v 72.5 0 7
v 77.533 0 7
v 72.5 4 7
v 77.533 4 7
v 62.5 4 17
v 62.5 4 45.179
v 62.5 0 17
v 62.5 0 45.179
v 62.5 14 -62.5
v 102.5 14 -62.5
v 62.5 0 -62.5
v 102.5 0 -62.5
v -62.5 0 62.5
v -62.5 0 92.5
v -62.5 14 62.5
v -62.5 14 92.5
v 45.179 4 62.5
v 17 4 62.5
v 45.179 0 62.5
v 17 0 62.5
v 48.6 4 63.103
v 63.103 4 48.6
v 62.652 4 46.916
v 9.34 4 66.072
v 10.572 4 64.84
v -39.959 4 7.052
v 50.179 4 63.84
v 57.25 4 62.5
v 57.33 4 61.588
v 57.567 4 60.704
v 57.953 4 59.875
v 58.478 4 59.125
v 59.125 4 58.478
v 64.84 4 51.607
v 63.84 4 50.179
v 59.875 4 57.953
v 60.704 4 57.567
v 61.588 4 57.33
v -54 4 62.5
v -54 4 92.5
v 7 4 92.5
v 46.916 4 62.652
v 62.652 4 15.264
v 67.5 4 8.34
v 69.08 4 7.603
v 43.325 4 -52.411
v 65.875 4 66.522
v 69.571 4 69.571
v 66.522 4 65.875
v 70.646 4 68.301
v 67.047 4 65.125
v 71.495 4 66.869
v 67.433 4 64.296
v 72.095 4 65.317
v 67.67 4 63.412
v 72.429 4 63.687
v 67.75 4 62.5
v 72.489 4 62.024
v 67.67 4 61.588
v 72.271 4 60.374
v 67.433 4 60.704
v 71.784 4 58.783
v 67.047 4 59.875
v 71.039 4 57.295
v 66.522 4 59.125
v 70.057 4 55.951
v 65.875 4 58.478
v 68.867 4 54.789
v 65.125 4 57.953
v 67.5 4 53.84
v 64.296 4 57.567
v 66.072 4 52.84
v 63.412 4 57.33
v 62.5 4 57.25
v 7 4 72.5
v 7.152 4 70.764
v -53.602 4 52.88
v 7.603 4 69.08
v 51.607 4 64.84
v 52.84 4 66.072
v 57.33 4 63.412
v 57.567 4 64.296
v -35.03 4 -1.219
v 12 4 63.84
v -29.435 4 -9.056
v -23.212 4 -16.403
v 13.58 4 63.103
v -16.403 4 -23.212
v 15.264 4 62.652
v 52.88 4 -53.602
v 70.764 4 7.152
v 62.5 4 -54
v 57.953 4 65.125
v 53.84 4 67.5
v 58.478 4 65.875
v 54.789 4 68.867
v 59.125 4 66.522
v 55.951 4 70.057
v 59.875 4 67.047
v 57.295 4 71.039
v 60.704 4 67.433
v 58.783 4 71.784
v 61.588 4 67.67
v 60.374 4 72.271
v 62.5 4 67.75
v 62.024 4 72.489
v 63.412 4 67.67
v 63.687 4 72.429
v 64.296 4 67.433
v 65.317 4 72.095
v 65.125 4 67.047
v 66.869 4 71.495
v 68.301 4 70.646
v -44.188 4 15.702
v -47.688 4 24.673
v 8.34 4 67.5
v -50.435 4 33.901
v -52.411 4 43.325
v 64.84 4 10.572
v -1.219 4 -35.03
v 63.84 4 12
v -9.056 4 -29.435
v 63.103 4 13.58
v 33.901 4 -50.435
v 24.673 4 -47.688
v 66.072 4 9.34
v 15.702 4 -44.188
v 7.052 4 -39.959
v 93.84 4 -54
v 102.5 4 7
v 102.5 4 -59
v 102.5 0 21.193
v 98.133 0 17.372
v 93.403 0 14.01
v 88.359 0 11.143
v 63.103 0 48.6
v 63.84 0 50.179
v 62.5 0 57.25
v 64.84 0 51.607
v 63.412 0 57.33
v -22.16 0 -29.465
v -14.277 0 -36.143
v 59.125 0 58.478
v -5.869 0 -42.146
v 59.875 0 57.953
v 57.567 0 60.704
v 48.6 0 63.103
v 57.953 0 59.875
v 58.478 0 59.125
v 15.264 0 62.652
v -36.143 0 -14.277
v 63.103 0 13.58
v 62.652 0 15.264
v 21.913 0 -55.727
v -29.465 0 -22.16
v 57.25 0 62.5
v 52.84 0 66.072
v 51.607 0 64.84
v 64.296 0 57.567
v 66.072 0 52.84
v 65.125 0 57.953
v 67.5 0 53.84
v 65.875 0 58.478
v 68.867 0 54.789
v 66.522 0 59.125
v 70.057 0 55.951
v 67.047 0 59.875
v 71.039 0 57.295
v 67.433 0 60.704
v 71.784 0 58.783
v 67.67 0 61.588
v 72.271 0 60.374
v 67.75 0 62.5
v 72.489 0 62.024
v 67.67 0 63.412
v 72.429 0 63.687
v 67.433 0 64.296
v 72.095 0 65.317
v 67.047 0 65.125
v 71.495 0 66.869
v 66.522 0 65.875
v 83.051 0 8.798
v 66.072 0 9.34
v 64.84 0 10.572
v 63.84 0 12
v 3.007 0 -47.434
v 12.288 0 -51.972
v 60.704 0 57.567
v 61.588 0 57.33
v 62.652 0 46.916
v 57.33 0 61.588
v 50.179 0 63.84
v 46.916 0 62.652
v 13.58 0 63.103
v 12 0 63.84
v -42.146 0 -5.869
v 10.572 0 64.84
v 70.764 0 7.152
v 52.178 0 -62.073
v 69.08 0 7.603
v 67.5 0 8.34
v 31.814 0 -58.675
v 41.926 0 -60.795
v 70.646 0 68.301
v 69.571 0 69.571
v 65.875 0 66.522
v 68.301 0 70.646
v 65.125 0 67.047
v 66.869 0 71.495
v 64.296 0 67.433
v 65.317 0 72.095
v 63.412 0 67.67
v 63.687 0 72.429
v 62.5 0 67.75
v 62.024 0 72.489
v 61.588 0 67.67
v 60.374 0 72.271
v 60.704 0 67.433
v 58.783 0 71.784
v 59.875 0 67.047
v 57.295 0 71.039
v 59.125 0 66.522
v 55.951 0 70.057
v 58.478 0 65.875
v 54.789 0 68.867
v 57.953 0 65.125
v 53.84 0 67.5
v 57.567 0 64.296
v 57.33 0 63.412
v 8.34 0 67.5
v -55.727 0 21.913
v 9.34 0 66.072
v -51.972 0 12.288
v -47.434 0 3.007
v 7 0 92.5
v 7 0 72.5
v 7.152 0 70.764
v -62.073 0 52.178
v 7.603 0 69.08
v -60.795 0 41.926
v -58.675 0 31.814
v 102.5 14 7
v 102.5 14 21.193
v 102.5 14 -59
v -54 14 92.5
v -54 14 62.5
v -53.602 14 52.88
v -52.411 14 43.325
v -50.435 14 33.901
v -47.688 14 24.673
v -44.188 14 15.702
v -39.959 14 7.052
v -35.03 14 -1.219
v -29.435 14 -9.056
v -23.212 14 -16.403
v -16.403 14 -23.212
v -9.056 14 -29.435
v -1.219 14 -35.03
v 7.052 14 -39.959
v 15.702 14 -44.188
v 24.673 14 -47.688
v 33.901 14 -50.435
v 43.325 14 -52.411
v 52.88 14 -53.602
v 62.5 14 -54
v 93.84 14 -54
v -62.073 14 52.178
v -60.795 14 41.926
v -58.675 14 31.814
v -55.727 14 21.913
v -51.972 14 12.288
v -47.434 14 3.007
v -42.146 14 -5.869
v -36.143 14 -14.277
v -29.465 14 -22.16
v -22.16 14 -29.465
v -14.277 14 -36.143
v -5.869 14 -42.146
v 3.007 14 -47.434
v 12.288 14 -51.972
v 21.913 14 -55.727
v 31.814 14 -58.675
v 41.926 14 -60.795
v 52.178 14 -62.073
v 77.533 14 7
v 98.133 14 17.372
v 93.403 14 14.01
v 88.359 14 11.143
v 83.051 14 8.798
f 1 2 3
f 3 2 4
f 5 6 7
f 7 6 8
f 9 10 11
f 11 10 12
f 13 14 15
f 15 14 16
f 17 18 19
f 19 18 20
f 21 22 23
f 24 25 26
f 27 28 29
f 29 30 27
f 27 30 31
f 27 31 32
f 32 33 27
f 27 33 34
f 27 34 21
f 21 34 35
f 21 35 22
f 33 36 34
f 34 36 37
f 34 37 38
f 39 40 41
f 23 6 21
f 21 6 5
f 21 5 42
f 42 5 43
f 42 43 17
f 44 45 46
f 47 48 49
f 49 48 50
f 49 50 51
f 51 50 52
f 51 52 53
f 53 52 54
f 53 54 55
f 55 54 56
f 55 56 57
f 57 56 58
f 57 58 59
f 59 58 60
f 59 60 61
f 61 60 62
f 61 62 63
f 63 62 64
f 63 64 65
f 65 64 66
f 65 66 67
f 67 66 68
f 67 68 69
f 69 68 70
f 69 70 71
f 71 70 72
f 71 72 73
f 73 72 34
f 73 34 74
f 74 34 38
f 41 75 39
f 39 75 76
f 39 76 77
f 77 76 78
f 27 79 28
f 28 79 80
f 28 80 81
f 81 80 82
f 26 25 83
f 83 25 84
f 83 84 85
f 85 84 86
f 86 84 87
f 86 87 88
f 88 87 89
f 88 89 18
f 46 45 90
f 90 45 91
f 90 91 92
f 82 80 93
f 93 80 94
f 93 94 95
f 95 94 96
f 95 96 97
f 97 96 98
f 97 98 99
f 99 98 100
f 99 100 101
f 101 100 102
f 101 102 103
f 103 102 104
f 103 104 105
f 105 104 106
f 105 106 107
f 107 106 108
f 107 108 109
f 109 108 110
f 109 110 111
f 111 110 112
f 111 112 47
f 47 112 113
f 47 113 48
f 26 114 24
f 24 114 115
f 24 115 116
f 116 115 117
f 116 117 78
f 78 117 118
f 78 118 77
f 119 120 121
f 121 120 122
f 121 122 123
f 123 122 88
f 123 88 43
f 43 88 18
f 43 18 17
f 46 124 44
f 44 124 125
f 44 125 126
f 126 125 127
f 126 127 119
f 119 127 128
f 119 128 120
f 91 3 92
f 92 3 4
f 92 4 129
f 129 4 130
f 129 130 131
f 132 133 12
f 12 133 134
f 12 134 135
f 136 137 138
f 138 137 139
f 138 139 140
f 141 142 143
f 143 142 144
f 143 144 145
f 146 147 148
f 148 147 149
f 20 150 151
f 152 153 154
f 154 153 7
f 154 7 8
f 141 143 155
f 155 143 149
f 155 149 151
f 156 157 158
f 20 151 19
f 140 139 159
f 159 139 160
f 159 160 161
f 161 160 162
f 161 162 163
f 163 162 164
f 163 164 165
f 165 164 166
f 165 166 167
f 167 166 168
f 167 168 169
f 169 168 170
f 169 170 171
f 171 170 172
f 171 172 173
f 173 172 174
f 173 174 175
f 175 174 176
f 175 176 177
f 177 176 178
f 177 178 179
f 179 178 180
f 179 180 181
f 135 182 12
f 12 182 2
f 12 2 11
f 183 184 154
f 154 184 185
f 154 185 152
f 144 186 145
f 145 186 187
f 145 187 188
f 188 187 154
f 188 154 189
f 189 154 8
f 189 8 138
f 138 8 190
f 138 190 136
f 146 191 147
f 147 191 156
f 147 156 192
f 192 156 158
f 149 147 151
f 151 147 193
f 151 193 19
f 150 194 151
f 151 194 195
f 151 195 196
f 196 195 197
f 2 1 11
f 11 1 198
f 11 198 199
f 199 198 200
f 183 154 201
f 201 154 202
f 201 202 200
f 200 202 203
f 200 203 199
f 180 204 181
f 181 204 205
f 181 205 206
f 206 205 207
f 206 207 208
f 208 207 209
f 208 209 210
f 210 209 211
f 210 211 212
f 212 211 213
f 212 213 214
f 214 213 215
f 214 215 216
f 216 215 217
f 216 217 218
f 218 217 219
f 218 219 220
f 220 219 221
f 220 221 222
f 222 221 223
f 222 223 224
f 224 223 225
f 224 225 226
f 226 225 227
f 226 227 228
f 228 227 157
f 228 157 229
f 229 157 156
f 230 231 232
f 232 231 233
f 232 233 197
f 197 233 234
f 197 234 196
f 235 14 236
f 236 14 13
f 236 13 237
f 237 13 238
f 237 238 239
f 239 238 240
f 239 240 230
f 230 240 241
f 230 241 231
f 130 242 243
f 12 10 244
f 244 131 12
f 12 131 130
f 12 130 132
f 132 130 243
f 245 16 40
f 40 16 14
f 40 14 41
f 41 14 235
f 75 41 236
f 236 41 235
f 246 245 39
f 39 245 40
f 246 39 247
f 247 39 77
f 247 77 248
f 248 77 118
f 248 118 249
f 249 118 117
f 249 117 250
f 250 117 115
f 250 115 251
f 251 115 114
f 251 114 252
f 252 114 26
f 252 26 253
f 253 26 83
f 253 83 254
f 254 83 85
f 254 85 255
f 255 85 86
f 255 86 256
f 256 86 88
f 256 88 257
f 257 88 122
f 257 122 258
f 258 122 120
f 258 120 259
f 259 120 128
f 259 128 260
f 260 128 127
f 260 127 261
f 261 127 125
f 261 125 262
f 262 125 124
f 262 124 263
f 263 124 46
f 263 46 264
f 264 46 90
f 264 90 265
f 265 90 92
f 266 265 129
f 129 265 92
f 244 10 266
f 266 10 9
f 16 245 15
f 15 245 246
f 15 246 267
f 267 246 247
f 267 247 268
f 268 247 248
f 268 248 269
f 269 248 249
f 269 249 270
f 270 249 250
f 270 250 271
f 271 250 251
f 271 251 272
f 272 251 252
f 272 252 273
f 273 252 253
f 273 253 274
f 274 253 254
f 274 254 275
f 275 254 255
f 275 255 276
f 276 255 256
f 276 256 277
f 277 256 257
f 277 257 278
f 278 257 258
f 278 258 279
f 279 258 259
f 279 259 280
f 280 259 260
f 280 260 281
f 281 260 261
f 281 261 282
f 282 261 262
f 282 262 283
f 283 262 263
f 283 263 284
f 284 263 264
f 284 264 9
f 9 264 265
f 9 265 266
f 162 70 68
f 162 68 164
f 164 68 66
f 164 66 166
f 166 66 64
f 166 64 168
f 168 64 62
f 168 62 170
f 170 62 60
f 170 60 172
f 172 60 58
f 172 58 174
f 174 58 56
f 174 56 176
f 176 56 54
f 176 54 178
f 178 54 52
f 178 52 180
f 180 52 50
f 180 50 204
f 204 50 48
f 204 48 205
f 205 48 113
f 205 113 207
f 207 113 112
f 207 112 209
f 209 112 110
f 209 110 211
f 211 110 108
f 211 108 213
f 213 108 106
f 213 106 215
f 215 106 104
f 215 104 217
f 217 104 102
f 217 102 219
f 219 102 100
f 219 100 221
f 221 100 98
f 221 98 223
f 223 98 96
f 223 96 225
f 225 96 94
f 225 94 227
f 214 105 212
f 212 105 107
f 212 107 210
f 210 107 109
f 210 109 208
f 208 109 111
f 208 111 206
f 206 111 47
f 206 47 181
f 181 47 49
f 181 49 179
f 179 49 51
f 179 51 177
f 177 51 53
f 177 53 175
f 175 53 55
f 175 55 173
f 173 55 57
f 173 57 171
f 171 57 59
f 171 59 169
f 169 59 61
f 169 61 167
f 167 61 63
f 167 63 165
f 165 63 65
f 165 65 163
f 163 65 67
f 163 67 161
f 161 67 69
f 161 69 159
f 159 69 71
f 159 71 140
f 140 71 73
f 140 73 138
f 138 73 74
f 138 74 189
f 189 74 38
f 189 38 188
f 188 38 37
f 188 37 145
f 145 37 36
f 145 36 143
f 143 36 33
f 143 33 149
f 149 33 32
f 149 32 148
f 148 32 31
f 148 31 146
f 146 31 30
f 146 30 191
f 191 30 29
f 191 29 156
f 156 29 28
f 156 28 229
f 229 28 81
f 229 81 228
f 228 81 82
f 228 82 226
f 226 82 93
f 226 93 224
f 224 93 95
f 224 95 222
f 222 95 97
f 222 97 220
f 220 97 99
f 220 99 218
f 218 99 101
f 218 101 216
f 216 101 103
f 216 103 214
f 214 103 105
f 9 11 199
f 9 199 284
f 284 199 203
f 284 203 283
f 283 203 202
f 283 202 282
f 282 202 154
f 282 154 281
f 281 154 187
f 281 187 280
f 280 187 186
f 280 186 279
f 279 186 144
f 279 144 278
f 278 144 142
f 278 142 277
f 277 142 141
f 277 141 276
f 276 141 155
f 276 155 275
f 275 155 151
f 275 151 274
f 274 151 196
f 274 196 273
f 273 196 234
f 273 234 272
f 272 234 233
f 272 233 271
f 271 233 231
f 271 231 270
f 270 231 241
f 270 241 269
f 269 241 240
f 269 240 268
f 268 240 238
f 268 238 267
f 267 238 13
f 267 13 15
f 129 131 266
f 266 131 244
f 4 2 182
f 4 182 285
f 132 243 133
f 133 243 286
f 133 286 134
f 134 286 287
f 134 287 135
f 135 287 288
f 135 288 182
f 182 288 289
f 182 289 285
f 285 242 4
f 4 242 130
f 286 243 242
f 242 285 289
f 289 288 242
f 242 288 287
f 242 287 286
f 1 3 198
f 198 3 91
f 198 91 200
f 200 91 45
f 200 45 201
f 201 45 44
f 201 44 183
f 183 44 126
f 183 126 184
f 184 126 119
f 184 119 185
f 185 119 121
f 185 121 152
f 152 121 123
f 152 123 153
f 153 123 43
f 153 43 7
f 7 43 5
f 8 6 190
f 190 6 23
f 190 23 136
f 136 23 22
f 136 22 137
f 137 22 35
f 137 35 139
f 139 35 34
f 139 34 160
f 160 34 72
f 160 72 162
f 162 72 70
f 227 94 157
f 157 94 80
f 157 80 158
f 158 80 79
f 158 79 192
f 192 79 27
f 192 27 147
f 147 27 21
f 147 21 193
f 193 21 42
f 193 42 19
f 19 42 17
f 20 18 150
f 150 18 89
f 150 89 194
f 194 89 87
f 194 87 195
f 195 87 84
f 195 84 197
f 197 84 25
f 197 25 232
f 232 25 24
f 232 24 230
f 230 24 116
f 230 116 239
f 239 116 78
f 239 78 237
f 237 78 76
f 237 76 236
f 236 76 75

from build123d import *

# Parameters (mm, degrees)
SKETCH1_W           = 125
SKETCH1_H           = 125
BOSS_EXTRUDE1_DEPTH = 4
SKETCH7_W           = 40
SKETCH7_H           = 69.5
BOSS_EXTRUDE4_DEPTH = 4
SKETCH8_W           = 69.5
SKETCH8_H           = 30
BOSS_EXTRUDE5_DEPTH = 4
BOSS_EXTRUDE2_DEPTH = 10
SKETCH3_R           = 10
BOSS_EXTRUDE3_DEPTH = 4
SKETCH4_R           = 5.25
CUT_EXTRUDE1_DEPTH  = 4
FILLET1_R           = 125
CHAMFER1_SIZE       = 5
CHAMFER1_SIZE2      = 8.660254038
BOSS_EXTRUDE6_DEPTH = 14
FILLET2_R           = 10


with BuildPart() as part:
    # Sketch1 → Boss-Extrude1 (new body)
    with BuildSketch(Plane(origin=(0, 0, 0), x_dir=(1, 0, 0), z_dir=(0, 1, 0))):
        Rectangle(SKETCH1_W, SKETCH1_H)
    extrude(amount=BOSS_EXTRUDE1_DEPTH)

    # Sketch7 → Boss-Extrude4 (add)
    with BuildSketch(Plane(origin=(0, 0, 0), x_dir=(1, 0, 0), z_dir=(0, 1, 0))):
        with Locations((82.5, 27.75)):
            Rectangle(SKETCH7_W, SKETCH7_H)
    extrude(amount=BOSS_EXTRUDE4_DEPTH)

    # Sketch8 → Boss-Extrude5 (add)
    with BuildSketch(Plane(origin=(0, 0, 0), x_dir=(1, 0, 0), z_dir=(0, 1, 0))):
        with Locations((-27.75, -77.5)):
            Rectangle(SKETCH8_W, SKETCH8_H)
    extrude(amount=BOSS_EXTRUDE5_DEPTH)

    # Sketch2 → Boss-Extrude2 (add)
    with BuildSketch(Plane(origin=(0, 4, 0), x_dir=(1, 0, 0), z_dir=(0, 1, 0))):
        with BuildLine():
            Line((-62.5, -92.5), (-62.5, 62.5))
            Line((-62.5, 62.5), (102.5, 62.5))
            Line((102.5, 62.5), (102.5, 54))
            Line((102.5, 54), (62.5, 54))
            ThreePointArc((62.5, 54), (-19.877940008, 19.877940008), (-54, -62.5))
            Line((-54, -62.5), (-54, -92.5))
            Line((-54, -92.5), (-62.5, -92.5))
        make_face()
    extrude(amount=BOSS_EXTRUDE2_DEPTH)

    # Sketch3 → Boss-Extrude3 (add)
    with BuildSketch(Plane(origin=(0, 4, 0), x_dir=(1, 0, 0), z_dir=(0, 1, 0))):
        with Locations((62.5, -62.5)):
            Circle(SKETCH3_R)
    extrude(amount=-BOSS_EXTRUDE3_DEPTH)

    # Sketch4 → Cut-Extrude1 (cut)
    with BuildSketch(Plane(origin=(0, 4, 0), x_dir=(1, 0, 0), z_dir=(0, 1, 0))):
        with Locations(Location((62.5, -62.5, 0), (0, 0, 270))):
            Circle(SKETCH4_R)
    extrude(amount=-CUT_EXTRUDE1_DEPTH, mode=Mode.SUBTRACT)

    # Fillet1
    fillet1_edges = [part.edges().sort_by_distance(p)[0] for p in [
        (-62.5, 7, -62.5),
    ]]
    fillet(fillet1_edges, radius=FILLET1_R)

    # Chamfer1
    chamfer1_edges = [part.edges().sort_by_distance(p)[0] for p in [
        (102.5, 9, -54),
    ]]
    chamfer1_side = [part.faces().sort_by_distance(p)[0] for p in [
        (102.5, 3.639118457, -34.891873278),
    ]]
    chamfer(chamfer1_edges, length=CHAMFER1_SIZE, length2=CHAMFER1_SIZE2, reference=chamfer1_side[0])

    # Sketch9 → Boss-Extrude6 (add)
    with BuildSketch(Plane(origin=(0, 0, 0), x_dir=(1, 0, 0), z_dir=(0, 1, 0))):
        with BuildLine():
            Line((102.5, -7), (102.5, -21.193220895))
            ThreePointArc((102.5, -21.193220895), (90.917033755, -12.512779707), (77.533296378, -7))
            Line((77.533296378, -7), (102.5, -7))
        make_face()
    extrude(amount=BOSS_EXTRUDE6_DEPTH)

    # Fillet2
    fillet2_edges = [part.edges().sort_by_distance(p)[0] for p in [
        (62.5, 2, 7),
        (7, 2, 62.5),
        (62.5, 2, 52.5),
        (52.5, 2, 62.5),
    ]]
    fillet(fillet2_edges, radius=FILLET2_R)


solid = part.part
